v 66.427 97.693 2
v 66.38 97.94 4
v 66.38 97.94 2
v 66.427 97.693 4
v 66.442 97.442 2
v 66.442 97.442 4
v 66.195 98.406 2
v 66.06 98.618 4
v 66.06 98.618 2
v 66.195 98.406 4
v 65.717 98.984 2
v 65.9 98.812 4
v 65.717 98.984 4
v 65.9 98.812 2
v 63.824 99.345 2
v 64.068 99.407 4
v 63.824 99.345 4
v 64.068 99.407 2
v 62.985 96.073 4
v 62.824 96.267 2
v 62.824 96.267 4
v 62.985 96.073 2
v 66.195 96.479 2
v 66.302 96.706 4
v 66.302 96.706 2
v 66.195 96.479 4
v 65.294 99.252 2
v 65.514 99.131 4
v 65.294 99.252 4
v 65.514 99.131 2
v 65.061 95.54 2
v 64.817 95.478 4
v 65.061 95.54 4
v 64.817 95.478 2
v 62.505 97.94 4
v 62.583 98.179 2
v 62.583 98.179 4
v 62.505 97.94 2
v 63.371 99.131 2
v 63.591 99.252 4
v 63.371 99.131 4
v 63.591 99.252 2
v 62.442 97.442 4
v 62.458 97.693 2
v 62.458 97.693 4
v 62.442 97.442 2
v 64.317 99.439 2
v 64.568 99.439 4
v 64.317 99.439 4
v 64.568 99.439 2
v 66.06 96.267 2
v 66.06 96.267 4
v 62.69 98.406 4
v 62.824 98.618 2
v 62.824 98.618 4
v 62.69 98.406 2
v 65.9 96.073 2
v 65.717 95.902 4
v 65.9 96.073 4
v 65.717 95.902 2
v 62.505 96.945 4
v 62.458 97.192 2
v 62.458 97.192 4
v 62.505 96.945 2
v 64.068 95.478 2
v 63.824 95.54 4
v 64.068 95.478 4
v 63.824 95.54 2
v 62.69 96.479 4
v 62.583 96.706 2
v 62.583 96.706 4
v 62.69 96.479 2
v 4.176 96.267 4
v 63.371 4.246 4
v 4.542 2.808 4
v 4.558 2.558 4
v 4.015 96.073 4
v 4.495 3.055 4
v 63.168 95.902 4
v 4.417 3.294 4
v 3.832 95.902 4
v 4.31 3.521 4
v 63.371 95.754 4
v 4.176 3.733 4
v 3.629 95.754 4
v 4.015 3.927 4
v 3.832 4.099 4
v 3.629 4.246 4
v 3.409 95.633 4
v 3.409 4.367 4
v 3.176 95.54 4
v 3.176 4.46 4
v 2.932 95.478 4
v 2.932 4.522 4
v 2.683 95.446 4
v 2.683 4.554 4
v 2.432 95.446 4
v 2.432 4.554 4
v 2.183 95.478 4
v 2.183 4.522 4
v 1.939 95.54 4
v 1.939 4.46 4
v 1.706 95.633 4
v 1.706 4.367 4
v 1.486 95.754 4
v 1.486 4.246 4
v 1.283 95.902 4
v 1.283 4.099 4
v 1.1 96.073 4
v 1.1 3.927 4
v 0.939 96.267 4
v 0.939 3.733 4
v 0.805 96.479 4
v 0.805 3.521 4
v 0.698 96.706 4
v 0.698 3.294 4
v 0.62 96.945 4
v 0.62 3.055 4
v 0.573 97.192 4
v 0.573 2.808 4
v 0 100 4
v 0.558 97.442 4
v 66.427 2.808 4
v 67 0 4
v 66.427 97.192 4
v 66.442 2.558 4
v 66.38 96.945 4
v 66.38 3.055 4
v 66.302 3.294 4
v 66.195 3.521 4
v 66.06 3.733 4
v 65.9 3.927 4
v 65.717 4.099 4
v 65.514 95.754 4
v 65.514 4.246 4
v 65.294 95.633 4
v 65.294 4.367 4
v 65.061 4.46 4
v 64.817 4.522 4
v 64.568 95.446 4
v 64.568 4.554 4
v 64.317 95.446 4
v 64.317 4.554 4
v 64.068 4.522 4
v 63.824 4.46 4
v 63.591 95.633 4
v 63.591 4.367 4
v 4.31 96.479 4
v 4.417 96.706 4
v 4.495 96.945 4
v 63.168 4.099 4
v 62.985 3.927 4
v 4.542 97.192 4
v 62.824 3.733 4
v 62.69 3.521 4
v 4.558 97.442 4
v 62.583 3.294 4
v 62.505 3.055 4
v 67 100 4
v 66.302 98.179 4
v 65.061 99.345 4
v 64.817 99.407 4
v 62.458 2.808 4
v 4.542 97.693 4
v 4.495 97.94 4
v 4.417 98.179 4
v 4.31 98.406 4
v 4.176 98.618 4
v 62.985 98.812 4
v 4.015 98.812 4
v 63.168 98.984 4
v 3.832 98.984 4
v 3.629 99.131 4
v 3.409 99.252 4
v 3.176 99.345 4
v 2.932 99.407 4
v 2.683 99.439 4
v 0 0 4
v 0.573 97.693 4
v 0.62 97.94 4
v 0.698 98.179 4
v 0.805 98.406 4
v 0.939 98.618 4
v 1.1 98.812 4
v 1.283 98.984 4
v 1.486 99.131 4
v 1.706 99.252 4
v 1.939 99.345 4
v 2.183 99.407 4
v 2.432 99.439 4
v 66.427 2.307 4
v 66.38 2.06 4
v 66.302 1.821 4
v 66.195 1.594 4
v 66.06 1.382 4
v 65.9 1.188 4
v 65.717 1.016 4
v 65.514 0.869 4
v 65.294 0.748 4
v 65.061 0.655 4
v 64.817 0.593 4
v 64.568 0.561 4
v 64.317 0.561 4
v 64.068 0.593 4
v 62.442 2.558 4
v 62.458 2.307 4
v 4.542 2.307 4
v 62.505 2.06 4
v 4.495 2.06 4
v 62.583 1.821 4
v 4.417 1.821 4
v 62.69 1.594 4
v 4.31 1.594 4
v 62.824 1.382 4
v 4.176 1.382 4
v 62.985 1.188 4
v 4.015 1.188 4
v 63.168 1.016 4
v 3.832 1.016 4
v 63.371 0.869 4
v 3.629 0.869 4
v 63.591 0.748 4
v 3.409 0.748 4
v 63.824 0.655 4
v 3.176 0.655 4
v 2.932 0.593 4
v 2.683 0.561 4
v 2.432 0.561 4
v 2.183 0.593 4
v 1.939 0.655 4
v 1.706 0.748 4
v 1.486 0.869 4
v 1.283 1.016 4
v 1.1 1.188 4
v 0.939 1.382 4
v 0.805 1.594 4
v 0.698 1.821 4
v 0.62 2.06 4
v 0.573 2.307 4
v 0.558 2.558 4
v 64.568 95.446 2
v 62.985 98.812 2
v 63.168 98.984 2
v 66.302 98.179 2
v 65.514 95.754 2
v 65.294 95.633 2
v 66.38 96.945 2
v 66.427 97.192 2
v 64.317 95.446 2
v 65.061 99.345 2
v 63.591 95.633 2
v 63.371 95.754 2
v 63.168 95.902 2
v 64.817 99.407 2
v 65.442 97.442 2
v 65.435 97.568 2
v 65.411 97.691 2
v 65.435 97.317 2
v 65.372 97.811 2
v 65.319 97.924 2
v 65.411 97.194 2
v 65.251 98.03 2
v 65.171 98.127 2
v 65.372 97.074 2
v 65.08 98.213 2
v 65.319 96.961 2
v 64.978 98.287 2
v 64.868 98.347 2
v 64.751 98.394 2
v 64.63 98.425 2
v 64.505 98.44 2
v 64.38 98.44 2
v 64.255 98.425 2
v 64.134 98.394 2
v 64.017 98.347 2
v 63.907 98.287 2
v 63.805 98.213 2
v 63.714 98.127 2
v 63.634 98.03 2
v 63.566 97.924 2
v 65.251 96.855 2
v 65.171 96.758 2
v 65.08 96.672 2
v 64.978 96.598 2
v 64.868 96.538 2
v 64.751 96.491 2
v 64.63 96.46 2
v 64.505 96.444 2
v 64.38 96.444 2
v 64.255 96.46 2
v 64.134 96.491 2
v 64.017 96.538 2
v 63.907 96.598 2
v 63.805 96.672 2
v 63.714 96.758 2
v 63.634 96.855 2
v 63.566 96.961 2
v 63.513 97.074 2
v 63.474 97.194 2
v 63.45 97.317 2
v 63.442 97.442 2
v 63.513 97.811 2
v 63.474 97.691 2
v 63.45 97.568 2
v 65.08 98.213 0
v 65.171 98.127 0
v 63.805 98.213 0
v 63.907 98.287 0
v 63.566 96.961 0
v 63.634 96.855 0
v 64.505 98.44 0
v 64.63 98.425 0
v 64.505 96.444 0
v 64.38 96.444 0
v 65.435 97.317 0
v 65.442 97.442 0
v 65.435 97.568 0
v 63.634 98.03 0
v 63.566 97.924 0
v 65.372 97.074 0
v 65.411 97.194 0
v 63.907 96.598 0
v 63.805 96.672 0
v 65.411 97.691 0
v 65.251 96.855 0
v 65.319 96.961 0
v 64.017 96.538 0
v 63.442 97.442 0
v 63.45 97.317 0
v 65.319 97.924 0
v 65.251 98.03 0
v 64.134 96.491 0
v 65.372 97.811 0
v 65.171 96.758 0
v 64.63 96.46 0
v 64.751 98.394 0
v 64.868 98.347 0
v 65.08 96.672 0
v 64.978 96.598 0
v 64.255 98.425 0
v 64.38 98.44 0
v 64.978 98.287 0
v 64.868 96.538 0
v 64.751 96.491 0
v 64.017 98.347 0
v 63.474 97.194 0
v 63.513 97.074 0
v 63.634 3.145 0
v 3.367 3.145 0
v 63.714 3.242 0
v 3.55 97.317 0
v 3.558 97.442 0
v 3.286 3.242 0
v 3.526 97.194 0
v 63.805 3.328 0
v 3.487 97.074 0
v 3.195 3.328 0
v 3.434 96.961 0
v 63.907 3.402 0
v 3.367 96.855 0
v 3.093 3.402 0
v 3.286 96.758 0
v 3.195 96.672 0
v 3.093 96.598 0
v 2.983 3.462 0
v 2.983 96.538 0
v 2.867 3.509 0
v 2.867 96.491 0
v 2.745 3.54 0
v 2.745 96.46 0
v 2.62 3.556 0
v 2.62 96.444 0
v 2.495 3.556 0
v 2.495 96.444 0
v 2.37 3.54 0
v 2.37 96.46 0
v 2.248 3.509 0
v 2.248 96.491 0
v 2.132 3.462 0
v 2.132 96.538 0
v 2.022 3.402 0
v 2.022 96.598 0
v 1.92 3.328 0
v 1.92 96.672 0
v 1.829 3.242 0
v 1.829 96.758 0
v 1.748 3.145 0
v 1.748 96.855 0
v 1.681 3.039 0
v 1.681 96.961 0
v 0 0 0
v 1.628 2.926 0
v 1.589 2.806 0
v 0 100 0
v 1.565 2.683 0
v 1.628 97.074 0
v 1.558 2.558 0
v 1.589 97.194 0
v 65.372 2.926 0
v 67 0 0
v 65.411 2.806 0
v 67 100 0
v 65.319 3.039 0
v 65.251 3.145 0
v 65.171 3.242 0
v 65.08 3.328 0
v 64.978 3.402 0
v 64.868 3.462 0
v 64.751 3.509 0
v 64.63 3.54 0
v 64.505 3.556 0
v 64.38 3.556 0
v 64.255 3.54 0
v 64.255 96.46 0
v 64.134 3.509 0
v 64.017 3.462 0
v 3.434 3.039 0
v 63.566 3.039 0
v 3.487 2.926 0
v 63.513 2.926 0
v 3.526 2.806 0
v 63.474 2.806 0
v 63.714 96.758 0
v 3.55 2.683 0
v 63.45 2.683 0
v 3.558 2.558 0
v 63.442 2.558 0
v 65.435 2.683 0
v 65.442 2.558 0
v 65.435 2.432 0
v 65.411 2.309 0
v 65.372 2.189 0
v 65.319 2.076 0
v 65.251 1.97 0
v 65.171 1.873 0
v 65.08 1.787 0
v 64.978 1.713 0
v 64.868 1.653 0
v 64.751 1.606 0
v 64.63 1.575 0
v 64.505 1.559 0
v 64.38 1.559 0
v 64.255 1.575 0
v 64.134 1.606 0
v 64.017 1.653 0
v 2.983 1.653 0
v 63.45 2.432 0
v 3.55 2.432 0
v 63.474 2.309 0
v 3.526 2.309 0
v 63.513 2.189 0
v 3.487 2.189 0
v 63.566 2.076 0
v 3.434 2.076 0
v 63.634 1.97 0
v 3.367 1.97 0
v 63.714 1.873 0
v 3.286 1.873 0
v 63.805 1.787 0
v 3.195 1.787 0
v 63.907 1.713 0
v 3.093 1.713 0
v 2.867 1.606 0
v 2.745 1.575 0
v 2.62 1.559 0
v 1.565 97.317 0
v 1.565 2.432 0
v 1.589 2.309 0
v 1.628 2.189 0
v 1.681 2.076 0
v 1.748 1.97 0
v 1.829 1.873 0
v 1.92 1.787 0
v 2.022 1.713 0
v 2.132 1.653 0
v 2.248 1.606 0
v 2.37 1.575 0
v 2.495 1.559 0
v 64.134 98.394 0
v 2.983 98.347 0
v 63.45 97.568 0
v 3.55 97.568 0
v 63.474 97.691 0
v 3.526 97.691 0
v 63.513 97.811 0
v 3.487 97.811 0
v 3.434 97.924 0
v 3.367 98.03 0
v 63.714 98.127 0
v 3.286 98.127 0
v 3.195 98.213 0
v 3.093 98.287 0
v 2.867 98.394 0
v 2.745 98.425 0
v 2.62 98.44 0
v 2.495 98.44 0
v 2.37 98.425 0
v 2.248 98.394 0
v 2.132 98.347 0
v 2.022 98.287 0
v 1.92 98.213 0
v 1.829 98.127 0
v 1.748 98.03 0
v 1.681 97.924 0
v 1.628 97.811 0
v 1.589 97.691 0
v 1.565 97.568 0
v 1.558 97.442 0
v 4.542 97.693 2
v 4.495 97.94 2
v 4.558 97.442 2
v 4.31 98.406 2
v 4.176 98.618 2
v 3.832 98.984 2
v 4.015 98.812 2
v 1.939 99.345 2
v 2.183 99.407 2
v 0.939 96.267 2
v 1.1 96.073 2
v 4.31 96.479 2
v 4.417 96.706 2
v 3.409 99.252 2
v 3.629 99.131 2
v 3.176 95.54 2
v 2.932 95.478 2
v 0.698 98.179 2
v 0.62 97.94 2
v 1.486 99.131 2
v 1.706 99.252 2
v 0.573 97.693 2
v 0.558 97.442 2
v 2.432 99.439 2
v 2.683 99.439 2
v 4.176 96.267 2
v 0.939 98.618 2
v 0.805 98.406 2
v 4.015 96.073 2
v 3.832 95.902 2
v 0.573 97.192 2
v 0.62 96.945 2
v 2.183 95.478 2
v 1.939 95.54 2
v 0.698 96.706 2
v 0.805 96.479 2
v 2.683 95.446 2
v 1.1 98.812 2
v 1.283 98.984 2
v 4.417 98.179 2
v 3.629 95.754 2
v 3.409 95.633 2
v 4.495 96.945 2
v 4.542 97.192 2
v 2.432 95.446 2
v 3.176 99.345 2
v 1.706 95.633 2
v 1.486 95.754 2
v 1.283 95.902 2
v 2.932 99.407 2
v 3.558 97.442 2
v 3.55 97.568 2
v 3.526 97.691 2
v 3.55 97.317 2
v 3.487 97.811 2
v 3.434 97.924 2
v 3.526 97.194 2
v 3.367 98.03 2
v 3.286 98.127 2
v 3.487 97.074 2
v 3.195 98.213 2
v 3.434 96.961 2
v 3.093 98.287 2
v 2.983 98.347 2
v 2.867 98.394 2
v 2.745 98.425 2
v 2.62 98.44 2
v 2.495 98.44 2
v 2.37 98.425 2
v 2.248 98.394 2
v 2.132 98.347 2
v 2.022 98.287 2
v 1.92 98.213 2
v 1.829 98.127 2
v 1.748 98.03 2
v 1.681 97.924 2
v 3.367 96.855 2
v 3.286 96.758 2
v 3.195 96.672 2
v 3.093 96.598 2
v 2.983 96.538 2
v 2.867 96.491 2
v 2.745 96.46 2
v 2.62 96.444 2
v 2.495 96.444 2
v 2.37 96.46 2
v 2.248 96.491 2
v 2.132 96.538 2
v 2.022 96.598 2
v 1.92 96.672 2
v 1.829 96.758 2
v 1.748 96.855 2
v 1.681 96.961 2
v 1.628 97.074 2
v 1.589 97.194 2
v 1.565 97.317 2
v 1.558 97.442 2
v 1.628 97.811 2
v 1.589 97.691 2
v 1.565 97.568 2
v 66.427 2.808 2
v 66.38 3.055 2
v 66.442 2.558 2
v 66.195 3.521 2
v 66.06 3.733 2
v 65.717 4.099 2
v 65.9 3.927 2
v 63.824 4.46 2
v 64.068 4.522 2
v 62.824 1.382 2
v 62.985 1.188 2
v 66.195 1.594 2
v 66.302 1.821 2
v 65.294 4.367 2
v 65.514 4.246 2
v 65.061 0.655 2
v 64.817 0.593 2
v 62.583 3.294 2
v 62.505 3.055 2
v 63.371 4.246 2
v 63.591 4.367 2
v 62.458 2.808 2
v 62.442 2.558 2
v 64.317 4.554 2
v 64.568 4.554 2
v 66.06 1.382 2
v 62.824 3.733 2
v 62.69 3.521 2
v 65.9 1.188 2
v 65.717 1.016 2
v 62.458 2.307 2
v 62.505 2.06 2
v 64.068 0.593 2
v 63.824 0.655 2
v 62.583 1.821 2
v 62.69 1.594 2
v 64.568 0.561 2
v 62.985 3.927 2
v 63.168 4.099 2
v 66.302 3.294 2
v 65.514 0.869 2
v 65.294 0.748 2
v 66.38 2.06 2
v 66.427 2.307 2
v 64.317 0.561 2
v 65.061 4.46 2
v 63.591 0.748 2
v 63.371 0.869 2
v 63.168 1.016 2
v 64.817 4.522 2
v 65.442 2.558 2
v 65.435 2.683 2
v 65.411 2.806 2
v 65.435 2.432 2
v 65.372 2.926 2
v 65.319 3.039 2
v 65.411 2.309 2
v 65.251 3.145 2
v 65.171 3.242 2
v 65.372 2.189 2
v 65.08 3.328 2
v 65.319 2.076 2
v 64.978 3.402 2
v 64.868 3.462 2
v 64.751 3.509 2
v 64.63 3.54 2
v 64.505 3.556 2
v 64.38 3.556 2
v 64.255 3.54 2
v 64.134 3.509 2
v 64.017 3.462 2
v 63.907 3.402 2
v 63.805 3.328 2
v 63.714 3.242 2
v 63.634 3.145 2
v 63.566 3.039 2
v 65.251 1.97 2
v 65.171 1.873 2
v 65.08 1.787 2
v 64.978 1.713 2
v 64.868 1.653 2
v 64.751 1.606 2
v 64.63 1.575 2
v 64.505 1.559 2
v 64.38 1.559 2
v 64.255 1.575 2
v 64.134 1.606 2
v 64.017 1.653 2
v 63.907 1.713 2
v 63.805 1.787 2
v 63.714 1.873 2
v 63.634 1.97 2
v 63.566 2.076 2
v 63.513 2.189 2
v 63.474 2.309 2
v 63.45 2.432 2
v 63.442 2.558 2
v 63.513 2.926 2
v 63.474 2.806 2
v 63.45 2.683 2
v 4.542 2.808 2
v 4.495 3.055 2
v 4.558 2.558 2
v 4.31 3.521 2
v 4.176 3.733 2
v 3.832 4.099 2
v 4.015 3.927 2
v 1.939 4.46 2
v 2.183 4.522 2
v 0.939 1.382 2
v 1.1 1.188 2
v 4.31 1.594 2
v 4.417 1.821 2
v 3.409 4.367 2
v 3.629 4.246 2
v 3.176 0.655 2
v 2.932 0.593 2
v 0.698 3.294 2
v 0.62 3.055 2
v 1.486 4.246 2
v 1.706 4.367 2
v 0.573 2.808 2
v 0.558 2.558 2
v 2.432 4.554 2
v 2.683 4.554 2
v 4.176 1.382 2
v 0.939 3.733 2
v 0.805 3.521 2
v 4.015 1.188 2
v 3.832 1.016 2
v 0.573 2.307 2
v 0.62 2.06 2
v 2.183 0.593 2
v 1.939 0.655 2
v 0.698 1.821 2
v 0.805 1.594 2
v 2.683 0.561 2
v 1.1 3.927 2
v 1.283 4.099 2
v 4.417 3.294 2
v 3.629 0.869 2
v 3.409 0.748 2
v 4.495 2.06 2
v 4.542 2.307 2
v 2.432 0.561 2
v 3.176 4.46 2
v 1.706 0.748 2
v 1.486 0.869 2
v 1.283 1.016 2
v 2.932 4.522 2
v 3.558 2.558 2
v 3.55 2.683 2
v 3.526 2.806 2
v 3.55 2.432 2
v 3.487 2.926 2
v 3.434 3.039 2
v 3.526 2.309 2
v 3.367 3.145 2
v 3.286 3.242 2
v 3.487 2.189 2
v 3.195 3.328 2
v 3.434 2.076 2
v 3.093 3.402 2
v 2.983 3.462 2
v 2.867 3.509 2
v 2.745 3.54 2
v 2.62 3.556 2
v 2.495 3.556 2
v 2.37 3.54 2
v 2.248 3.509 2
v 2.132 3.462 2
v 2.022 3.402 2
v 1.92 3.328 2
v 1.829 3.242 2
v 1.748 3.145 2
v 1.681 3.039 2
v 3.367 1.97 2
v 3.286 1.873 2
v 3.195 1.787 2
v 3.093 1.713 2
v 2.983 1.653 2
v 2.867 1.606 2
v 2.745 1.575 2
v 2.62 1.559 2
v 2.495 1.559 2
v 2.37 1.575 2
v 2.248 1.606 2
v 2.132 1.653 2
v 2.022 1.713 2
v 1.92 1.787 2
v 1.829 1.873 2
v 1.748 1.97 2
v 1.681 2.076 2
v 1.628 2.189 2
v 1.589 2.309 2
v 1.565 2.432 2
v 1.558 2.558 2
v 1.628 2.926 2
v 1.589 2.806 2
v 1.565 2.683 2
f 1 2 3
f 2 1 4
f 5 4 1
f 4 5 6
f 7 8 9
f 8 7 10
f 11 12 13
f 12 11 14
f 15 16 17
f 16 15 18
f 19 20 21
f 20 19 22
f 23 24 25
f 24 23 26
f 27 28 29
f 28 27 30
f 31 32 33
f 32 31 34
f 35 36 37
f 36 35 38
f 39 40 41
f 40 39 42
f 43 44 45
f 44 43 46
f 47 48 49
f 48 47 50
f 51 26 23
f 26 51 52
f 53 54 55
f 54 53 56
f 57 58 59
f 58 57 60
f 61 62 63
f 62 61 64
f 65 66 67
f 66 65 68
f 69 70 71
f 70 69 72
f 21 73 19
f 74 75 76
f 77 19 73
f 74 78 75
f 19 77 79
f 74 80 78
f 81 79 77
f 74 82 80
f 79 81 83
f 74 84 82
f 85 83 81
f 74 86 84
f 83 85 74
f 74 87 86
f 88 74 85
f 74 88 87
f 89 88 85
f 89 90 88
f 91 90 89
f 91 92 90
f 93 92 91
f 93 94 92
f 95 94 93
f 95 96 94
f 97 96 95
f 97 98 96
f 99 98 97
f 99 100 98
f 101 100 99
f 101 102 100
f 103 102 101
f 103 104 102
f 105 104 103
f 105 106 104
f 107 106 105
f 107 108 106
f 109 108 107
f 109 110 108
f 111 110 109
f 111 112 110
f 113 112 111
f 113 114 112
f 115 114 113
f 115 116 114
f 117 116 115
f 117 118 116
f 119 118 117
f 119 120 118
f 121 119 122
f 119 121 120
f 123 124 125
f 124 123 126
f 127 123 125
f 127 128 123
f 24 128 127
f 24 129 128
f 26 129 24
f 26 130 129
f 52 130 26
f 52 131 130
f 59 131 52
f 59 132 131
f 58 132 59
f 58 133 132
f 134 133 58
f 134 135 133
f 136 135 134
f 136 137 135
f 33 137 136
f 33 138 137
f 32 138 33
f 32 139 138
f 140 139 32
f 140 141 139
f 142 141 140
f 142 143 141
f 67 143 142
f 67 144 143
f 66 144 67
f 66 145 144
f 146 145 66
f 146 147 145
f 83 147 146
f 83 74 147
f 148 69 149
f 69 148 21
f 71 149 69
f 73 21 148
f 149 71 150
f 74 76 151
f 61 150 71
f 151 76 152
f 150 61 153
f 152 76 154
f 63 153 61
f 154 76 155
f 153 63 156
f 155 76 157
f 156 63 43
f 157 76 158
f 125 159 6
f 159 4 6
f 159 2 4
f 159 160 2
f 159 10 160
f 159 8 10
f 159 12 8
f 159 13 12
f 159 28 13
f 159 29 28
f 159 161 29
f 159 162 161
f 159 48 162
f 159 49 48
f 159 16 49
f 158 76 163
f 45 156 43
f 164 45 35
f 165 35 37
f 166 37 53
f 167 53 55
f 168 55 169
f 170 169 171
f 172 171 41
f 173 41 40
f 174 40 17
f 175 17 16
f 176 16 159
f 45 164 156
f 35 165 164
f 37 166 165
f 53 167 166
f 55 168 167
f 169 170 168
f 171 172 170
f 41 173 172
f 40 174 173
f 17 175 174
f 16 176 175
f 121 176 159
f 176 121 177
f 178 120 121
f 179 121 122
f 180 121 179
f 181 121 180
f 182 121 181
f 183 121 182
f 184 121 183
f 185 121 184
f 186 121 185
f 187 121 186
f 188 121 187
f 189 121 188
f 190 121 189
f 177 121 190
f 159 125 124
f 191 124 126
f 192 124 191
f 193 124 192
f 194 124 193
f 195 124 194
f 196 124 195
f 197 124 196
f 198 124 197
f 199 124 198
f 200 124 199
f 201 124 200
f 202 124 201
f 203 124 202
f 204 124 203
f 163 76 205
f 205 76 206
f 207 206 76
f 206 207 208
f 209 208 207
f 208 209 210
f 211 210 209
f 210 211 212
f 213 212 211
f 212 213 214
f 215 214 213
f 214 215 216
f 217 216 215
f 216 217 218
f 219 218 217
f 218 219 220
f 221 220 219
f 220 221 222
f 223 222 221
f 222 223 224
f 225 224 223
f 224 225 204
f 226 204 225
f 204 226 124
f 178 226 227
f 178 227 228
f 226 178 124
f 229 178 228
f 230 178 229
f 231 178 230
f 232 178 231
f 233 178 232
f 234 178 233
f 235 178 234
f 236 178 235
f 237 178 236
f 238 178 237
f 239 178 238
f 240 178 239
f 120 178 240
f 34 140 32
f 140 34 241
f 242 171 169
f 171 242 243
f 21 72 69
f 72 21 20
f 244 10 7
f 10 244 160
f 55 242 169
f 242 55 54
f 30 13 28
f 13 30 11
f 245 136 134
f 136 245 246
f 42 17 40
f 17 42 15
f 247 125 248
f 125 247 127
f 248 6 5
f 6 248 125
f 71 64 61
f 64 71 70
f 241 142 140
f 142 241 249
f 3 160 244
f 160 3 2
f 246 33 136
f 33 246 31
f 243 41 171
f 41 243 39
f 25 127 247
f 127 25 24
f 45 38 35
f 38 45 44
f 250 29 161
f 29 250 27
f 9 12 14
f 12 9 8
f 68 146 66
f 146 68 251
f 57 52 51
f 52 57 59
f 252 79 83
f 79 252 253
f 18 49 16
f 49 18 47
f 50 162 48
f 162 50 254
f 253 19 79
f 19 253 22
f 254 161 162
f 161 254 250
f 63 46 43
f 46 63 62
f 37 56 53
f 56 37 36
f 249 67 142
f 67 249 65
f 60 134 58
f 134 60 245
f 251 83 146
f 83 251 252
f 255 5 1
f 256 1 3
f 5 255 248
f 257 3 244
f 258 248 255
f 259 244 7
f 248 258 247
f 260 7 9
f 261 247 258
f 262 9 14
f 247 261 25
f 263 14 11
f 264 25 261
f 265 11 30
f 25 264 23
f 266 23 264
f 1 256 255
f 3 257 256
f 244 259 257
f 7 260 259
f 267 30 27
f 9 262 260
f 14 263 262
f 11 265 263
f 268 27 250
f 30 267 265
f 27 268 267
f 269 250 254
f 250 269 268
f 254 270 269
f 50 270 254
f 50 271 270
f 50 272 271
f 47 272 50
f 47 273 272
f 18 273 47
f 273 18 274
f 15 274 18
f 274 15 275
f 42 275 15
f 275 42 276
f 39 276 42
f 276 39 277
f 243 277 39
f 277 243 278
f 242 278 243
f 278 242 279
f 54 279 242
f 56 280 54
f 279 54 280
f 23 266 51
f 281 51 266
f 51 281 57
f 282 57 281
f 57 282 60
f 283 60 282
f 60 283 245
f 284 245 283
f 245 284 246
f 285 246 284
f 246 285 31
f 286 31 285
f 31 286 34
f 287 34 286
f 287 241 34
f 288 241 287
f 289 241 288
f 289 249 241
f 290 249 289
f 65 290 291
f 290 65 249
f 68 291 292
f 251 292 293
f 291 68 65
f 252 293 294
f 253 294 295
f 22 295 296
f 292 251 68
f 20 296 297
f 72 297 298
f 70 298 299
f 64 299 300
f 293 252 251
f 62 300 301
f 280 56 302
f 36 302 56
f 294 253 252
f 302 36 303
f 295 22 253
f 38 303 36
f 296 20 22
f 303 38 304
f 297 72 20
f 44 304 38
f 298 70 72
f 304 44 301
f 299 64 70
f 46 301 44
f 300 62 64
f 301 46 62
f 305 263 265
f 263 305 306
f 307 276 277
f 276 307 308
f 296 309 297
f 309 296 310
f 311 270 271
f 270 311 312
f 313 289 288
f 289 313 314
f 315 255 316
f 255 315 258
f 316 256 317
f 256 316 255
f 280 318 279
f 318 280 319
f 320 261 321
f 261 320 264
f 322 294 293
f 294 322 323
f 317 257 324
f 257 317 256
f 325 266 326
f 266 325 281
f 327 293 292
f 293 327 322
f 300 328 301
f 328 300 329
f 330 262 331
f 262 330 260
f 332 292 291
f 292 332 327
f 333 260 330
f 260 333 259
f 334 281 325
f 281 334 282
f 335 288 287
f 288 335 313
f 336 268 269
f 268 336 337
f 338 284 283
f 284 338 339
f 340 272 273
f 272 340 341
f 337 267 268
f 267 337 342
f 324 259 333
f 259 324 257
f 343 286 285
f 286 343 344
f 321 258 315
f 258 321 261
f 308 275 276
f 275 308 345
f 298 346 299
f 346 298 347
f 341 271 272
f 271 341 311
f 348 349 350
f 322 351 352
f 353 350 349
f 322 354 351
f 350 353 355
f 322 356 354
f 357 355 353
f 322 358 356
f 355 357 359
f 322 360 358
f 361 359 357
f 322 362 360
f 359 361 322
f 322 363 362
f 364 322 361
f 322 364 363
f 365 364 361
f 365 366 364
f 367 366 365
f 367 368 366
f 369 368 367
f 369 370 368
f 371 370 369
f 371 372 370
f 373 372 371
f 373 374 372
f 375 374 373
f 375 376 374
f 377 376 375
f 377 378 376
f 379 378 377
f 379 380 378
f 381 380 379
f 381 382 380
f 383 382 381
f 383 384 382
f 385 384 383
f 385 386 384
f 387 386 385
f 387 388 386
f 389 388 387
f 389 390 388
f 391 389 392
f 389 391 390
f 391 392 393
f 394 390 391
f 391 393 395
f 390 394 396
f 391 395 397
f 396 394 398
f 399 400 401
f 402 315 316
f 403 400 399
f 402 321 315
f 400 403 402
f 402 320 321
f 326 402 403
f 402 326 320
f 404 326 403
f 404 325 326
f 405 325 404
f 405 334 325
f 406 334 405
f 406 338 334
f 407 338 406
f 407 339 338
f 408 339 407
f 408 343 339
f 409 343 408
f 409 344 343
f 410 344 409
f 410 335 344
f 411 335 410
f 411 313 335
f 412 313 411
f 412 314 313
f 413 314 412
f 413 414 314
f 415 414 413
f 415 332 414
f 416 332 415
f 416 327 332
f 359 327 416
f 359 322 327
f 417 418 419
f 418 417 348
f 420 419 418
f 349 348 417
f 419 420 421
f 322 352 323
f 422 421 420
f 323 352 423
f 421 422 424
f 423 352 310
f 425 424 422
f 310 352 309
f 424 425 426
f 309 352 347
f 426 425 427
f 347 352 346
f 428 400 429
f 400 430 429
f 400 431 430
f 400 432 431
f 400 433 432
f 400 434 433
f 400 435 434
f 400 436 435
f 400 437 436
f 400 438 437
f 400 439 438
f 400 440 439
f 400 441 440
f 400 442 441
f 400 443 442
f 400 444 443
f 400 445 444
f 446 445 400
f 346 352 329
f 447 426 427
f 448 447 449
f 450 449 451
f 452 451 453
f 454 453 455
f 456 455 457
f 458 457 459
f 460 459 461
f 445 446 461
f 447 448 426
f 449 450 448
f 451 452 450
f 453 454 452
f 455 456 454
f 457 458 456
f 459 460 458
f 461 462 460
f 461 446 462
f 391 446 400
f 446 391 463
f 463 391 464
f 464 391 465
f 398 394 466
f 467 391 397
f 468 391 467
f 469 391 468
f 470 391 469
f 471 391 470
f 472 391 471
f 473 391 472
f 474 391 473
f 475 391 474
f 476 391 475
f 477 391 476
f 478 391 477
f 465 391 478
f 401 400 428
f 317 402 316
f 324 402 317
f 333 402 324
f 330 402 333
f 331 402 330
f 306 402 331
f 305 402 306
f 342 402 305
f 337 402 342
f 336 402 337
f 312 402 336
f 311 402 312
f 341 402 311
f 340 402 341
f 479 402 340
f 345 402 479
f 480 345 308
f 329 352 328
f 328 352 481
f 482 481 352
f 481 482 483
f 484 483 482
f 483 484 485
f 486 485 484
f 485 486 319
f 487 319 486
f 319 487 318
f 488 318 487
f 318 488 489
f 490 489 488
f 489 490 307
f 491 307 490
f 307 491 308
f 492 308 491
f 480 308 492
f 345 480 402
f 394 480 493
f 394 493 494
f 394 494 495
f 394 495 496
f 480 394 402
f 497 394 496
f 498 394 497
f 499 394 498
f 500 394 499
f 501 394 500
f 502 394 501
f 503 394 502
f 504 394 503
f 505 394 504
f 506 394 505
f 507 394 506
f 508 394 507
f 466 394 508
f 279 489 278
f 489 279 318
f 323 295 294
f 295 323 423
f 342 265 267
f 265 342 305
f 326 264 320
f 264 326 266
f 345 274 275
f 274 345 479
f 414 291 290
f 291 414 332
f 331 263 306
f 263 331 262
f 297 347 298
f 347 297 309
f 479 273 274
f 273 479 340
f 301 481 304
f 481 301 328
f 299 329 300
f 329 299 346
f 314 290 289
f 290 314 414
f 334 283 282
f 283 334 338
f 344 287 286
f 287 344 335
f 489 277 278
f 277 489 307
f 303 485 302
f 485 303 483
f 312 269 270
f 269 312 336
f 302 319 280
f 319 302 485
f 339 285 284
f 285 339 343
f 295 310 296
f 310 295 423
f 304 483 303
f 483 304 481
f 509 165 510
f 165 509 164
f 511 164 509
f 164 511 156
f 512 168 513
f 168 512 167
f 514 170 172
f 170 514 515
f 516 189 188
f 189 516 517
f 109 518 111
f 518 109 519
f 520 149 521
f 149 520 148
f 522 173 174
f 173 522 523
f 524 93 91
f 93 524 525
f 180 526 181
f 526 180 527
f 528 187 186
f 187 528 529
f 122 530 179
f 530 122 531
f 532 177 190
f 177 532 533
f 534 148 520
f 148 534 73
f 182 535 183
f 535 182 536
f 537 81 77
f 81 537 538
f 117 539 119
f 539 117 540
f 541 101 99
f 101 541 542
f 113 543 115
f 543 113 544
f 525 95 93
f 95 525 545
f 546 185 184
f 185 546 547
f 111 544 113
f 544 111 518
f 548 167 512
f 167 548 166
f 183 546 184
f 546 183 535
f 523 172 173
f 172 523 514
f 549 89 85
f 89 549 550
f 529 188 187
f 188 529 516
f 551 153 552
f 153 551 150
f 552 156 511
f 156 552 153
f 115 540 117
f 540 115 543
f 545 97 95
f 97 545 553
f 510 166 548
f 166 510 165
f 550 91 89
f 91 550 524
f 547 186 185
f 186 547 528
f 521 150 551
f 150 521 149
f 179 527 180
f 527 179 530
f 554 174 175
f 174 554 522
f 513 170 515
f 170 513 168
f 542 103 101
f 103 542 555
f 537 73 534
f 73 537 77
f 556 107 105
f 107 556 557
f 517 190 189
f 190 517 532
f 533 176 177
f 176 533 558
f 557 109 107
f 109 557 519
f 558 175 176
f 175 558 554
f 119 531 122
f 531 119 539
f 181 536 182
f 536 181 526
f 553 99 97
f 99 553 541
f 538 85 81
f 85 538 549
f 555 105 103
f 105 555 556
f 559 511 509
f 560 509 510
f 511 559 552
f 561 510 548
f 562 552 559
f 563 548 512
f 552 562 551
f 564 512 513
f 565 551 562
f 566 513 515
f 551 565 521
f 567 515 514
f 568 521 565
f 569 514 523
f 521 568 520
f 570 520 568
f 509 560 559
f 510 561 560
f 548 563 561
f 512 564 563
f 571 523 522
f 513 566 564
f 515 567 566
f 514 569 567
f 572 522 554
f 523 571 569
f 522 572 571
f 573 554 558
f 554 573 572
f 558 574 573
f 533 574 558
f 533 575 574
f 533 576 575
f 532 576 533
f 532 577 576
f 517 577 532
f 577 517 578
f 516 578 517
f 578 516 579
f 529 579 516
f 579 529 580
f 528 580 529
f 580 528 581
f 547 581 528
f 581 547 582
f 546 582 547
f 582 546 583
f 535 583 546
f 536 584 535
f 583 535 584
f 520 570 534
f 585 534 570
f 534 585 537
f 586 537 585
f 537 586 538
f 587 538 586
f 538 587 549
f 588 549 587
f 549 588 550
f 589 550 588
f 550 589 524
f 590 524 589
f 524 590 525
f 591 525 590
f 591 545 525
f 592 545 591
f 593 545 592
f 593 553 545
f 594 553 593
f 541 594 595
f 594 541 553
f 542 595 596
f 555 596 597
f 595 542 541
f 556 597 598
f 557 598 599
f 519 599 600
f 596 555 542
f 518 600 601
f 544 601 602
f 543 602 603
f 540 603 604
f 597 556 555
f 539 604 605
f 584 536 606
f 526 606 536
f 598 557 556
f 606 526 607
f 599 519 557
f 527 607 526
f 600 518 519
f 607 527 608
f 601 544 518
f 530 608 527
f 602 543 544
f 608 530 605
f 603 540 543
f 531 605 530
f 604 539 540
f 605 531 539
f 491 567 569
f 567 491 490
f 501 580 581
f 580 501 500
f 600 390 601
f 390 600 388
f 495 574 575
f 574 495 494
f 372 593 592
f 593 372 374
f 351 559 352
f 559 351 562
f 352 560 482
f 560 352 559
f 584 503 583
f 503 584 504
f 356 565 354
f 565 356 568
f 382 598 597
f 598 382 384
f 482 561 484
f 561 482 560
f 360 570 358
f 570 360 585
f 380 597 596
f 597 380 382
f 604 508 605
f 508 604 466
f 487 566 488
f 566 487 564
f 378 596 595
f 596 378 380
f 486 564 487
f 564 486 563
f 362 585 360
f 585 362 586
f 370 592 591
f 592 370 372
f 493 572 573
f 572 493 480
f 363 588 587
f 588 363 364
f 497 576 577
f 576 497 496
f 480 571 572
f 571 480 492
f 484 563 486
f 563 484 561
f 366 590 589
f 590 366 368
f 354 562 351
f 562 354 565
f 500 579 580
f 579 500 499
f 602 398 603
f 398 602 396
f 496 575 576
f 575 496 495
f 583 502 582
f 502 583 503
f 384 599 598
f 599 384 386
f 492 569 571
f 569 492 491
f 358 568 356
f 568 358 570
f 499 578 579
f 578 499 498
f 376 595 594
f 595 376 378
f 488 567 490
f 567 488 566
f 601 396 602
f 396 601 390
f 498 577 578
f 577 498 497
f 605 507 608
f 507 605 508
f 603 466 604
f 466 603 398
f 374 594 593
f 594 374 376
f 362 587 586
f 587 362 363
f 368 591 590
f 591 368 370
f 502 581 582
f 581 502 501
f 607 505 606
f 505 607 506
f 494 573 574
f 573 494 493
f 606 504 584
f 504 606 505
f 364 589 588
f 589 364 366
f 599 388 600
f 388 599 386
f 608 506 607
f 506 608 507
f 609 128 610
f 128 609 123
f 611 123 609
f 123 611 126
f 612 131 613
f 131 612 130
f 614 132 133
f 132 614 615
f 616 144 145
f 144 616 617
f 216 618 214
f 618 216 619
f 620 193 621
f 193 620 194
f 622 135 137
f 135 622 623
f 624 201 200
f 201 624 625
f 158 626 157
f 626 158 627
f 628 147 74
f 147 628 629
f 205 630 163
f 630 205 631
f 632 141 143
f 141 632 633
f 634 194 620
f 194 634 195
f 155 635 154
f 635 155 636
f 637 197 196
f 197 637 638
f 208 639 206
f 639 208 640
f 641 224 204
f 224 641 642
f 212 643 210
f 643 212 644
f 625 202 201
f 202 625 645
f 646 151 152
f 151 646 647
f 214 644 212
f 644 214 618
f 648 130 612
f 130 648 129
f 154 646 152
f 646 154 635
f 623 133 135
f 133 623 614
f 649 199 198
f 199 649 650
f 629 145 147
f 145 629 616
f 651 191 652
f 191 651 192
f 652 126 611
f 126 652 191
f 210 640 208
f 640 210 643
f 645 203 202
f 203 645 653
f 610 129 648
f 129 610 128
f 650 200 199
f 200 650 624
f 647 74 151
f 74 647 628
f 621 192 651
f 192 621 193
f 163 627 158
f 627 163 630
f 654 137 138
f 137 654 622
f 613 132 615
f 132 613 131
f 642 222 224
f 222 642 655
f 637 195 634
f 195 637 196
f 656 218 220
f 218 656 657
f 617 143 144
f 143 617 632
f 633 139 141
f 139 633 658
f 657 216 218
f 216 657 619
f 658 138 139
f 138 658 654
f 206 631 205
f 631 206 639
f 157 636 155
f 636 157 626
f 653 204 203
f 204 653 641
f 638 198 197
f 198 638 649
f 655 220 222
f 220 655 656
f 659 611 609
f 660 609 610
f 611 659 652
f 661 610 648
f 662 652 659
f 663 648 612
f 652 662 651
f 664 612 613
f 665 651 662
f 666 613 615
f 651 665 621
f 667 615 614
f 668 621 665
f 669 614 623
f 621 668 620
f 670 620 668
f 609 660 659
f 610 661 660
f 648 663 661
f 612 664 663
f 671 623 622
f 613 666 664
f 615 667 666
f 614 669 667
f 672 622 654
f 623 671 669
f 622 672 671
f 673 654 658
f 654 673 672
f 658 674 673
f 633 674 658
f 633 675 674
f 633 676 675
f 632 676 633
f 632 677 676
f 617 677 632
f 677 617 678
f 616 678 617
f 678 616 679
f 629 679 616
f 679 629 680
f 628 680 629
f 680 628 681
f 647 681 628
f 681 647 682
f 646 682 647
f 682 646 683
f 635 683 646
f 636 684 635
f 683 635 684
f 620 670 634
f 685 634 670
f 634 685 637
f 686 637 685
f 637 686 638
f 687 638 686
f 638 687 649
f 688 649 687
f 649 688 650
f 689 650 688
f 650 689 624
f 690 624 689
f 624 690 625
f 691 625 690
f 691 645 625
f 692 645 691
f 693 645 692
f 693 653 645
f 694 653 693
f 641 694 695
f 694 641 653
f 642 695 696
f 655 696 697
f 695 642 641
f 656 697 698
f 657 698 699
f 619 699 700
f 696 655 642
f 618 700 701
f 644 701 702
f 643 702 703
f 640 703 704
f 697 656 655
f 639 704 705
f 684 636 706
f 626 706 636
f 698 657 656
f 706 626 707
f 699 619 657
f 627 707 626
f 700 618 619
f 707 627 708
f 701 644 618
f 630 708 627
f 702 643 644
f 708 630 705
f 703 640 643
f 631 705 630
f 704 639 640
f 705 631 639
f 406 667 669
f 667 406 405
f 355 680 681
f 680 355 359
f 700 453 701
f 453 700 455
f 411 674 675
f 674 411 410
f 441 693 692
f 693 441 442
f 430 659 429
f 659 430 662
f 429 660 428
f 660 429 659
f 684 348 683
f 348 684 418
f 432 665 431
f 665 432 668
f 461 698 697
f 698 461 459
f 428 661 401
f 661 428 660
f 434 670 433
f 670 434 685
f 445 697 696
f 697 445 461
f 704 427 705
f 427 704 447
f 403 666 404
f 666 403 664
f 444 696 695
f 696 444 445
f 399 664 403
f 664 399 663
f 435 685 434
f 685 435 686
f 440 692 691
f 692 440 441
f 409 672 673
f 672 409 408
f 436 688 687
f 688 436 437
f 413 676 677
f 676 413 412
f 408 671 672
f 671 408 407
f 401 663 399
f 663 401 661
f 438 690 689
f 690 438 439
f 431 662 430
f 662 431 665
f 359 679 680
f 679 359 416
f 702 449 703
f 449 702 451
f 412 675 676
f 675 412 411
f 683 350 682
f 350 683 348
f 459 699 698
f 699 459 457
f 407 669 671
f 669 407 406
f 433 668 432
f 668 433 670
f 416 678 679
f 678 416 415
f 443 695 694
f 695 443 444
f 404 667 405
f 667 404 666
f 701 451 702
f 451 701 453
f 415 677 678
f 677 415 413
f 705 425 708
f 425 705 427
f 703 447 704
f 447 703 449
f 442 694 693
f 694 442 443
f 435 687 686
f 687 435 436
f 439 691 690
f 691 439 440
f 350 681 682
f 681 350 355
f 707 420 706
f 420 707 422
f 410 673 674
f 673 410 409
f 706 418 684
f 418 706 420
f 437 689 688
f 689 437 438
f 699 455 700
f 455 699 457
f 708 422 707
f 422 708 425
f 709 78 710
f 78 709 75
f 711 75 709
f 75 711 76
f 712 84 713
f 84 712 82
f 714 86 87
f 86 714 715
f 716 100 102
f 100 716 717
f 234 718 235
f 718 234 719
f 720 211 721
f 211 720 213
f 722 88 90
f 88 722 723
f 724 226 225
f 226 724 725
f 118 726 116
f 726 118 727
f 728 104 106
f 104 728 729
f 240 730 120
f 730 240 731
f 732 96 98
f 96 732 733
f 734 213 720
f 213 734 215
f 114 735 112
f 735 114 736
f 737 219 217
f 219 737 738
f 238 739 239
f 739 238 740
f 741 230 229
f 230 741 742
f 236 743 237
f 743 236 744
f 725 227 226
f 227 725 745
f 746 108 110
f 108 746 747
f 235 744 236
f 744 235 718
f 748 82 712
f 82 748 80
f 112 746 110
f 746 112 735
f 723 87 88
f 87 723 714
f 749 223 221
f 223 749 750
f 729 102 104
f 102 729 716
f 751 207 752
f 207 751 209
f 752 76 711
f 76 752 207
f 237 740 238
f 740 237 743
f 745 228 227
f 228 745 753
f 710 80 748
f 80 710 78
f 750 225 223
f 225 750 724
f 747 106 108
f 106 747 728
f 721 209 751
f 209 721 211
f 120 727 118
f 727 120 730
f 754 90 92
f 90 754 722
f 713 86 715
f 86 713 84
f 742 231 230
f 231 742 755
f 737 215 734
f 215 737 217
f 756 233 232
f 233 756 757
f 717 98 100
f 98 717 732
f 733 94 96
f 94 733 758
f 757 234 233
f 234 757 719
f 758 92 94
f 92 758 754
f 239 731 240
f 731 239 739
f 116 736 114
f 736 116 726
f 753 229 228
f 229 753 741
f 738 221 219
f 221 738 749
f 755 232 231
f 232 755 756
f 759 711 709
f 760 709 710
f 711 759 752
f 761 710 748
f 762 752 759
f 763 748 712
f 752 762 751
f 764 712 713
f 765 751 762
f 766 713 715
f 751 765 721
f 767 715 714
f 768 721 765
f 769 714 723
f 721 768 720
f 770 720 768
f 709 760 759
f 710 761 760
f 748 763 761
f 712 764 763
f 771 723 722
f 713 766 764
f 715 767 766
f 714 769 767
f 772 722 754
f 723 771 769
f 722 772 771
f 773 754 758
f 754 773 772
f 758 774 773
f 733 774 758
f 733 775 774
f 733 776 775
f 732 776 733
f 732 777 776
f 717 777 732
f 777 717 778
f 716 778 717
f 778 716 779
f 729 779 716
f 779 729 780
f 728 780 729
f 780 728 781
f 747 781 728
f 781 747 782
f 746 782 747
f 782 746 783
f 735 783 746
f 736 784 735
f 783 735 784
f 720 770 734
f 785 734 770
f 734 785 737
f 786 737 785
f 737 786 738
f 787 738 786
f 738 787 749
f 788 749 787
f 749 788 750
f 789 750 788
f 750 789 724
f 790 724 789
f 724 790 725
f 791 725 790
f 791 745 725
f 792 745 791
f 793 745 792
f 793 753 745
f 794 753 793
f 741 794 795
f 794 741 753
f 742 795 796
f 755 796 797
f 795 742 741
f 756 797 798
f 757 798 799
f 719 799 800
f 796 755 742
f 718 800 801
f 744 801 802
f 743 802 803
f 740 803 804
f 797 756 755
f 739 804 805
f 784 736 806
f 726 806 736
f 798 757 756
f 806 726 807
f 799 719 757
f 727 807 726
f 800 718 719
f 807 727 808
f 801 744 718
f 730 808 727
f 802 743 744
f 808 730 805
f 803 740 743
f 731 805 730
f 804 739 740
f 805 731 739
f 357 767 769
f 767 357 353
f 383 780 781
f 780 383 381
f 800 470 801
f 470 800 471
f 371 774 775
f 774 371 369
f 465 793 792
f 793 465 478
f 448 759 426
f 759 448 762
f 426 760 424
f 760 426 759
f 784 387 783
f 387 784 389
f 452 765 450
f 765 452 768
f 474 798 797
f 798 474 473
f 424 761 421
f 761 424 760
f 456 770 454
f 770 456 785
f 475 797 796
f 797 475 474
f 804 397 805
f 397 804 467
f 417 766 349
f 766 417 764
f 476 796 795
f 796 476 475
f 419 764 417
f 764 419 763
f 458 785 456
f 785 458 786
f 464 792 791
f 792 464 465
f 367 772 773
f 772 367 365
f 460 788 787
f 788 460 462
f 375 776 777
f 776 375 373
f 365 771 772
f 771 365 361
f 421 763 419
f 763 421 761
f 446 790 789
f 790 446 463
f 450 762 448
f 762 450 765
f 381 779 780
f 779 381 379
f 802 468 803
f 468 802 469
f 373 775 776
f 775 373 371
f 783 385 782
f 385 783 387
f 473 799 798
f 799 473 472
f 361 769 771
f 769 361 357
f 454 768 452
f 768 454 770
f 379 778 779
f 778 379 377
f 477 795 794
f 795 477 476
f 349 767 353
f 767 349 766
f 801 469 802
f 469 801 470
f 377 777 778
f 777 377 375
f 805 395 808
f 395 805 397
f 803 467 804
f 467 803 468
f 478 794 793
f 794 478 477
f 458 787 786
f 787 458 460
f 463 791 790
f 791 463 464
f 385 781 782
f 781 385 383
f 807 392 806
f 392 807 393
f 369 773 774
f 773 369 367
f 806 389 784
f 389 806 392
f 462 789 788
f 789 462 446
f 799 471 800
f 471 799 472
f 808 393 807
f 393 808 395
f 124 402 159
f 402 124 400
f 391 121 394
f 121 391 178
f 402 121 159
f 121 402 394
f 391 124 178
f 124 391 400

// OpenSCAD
$fn=50;

width = 67;
length = 100;
phi = 1.6180339887;
//length = round(phi * width);
//height = round(width / phi);

// M2x6x3.5 Embedded Nut
finsertdiameter = 3.41;
finsertdepth = 6;

// M2x12 Hex Socket Cap Bolt
fheaddiameter = 4;
fheaddepth = 2;
fshankdiameter = 2;
fshankdepth = 12;

if (fshankdepth < finsertdepth) {
    fshankdepth = finsertdepth;
}

fsize = finsertdiameter * 1.5;


thickness = 2 * fheaddepth;


difference() {

   // base
   cube([width, length, thickness]);



    translate([fsize/2, fsize/2, 0]) {
        inserthole();
    }
    translate([width-fsize/2, length-fsize/2, 0]) {
        inserthole();
    }
    translate([fsize/2, length-fsize/2, 0]) {
        inserthole();
    }
    translate([width-fsize/2, fsize/2, 0]) {
        inserthole();
    }

}

module inserthole() {
    union() {
        translate([0,0,thickness-fheaddepth]) {
            cylinder(h=fheaddepth,r=fheaddiameter/2);
        }
        cylinder(h=thickness,r=fshankdiameter/2);
    }    
}
